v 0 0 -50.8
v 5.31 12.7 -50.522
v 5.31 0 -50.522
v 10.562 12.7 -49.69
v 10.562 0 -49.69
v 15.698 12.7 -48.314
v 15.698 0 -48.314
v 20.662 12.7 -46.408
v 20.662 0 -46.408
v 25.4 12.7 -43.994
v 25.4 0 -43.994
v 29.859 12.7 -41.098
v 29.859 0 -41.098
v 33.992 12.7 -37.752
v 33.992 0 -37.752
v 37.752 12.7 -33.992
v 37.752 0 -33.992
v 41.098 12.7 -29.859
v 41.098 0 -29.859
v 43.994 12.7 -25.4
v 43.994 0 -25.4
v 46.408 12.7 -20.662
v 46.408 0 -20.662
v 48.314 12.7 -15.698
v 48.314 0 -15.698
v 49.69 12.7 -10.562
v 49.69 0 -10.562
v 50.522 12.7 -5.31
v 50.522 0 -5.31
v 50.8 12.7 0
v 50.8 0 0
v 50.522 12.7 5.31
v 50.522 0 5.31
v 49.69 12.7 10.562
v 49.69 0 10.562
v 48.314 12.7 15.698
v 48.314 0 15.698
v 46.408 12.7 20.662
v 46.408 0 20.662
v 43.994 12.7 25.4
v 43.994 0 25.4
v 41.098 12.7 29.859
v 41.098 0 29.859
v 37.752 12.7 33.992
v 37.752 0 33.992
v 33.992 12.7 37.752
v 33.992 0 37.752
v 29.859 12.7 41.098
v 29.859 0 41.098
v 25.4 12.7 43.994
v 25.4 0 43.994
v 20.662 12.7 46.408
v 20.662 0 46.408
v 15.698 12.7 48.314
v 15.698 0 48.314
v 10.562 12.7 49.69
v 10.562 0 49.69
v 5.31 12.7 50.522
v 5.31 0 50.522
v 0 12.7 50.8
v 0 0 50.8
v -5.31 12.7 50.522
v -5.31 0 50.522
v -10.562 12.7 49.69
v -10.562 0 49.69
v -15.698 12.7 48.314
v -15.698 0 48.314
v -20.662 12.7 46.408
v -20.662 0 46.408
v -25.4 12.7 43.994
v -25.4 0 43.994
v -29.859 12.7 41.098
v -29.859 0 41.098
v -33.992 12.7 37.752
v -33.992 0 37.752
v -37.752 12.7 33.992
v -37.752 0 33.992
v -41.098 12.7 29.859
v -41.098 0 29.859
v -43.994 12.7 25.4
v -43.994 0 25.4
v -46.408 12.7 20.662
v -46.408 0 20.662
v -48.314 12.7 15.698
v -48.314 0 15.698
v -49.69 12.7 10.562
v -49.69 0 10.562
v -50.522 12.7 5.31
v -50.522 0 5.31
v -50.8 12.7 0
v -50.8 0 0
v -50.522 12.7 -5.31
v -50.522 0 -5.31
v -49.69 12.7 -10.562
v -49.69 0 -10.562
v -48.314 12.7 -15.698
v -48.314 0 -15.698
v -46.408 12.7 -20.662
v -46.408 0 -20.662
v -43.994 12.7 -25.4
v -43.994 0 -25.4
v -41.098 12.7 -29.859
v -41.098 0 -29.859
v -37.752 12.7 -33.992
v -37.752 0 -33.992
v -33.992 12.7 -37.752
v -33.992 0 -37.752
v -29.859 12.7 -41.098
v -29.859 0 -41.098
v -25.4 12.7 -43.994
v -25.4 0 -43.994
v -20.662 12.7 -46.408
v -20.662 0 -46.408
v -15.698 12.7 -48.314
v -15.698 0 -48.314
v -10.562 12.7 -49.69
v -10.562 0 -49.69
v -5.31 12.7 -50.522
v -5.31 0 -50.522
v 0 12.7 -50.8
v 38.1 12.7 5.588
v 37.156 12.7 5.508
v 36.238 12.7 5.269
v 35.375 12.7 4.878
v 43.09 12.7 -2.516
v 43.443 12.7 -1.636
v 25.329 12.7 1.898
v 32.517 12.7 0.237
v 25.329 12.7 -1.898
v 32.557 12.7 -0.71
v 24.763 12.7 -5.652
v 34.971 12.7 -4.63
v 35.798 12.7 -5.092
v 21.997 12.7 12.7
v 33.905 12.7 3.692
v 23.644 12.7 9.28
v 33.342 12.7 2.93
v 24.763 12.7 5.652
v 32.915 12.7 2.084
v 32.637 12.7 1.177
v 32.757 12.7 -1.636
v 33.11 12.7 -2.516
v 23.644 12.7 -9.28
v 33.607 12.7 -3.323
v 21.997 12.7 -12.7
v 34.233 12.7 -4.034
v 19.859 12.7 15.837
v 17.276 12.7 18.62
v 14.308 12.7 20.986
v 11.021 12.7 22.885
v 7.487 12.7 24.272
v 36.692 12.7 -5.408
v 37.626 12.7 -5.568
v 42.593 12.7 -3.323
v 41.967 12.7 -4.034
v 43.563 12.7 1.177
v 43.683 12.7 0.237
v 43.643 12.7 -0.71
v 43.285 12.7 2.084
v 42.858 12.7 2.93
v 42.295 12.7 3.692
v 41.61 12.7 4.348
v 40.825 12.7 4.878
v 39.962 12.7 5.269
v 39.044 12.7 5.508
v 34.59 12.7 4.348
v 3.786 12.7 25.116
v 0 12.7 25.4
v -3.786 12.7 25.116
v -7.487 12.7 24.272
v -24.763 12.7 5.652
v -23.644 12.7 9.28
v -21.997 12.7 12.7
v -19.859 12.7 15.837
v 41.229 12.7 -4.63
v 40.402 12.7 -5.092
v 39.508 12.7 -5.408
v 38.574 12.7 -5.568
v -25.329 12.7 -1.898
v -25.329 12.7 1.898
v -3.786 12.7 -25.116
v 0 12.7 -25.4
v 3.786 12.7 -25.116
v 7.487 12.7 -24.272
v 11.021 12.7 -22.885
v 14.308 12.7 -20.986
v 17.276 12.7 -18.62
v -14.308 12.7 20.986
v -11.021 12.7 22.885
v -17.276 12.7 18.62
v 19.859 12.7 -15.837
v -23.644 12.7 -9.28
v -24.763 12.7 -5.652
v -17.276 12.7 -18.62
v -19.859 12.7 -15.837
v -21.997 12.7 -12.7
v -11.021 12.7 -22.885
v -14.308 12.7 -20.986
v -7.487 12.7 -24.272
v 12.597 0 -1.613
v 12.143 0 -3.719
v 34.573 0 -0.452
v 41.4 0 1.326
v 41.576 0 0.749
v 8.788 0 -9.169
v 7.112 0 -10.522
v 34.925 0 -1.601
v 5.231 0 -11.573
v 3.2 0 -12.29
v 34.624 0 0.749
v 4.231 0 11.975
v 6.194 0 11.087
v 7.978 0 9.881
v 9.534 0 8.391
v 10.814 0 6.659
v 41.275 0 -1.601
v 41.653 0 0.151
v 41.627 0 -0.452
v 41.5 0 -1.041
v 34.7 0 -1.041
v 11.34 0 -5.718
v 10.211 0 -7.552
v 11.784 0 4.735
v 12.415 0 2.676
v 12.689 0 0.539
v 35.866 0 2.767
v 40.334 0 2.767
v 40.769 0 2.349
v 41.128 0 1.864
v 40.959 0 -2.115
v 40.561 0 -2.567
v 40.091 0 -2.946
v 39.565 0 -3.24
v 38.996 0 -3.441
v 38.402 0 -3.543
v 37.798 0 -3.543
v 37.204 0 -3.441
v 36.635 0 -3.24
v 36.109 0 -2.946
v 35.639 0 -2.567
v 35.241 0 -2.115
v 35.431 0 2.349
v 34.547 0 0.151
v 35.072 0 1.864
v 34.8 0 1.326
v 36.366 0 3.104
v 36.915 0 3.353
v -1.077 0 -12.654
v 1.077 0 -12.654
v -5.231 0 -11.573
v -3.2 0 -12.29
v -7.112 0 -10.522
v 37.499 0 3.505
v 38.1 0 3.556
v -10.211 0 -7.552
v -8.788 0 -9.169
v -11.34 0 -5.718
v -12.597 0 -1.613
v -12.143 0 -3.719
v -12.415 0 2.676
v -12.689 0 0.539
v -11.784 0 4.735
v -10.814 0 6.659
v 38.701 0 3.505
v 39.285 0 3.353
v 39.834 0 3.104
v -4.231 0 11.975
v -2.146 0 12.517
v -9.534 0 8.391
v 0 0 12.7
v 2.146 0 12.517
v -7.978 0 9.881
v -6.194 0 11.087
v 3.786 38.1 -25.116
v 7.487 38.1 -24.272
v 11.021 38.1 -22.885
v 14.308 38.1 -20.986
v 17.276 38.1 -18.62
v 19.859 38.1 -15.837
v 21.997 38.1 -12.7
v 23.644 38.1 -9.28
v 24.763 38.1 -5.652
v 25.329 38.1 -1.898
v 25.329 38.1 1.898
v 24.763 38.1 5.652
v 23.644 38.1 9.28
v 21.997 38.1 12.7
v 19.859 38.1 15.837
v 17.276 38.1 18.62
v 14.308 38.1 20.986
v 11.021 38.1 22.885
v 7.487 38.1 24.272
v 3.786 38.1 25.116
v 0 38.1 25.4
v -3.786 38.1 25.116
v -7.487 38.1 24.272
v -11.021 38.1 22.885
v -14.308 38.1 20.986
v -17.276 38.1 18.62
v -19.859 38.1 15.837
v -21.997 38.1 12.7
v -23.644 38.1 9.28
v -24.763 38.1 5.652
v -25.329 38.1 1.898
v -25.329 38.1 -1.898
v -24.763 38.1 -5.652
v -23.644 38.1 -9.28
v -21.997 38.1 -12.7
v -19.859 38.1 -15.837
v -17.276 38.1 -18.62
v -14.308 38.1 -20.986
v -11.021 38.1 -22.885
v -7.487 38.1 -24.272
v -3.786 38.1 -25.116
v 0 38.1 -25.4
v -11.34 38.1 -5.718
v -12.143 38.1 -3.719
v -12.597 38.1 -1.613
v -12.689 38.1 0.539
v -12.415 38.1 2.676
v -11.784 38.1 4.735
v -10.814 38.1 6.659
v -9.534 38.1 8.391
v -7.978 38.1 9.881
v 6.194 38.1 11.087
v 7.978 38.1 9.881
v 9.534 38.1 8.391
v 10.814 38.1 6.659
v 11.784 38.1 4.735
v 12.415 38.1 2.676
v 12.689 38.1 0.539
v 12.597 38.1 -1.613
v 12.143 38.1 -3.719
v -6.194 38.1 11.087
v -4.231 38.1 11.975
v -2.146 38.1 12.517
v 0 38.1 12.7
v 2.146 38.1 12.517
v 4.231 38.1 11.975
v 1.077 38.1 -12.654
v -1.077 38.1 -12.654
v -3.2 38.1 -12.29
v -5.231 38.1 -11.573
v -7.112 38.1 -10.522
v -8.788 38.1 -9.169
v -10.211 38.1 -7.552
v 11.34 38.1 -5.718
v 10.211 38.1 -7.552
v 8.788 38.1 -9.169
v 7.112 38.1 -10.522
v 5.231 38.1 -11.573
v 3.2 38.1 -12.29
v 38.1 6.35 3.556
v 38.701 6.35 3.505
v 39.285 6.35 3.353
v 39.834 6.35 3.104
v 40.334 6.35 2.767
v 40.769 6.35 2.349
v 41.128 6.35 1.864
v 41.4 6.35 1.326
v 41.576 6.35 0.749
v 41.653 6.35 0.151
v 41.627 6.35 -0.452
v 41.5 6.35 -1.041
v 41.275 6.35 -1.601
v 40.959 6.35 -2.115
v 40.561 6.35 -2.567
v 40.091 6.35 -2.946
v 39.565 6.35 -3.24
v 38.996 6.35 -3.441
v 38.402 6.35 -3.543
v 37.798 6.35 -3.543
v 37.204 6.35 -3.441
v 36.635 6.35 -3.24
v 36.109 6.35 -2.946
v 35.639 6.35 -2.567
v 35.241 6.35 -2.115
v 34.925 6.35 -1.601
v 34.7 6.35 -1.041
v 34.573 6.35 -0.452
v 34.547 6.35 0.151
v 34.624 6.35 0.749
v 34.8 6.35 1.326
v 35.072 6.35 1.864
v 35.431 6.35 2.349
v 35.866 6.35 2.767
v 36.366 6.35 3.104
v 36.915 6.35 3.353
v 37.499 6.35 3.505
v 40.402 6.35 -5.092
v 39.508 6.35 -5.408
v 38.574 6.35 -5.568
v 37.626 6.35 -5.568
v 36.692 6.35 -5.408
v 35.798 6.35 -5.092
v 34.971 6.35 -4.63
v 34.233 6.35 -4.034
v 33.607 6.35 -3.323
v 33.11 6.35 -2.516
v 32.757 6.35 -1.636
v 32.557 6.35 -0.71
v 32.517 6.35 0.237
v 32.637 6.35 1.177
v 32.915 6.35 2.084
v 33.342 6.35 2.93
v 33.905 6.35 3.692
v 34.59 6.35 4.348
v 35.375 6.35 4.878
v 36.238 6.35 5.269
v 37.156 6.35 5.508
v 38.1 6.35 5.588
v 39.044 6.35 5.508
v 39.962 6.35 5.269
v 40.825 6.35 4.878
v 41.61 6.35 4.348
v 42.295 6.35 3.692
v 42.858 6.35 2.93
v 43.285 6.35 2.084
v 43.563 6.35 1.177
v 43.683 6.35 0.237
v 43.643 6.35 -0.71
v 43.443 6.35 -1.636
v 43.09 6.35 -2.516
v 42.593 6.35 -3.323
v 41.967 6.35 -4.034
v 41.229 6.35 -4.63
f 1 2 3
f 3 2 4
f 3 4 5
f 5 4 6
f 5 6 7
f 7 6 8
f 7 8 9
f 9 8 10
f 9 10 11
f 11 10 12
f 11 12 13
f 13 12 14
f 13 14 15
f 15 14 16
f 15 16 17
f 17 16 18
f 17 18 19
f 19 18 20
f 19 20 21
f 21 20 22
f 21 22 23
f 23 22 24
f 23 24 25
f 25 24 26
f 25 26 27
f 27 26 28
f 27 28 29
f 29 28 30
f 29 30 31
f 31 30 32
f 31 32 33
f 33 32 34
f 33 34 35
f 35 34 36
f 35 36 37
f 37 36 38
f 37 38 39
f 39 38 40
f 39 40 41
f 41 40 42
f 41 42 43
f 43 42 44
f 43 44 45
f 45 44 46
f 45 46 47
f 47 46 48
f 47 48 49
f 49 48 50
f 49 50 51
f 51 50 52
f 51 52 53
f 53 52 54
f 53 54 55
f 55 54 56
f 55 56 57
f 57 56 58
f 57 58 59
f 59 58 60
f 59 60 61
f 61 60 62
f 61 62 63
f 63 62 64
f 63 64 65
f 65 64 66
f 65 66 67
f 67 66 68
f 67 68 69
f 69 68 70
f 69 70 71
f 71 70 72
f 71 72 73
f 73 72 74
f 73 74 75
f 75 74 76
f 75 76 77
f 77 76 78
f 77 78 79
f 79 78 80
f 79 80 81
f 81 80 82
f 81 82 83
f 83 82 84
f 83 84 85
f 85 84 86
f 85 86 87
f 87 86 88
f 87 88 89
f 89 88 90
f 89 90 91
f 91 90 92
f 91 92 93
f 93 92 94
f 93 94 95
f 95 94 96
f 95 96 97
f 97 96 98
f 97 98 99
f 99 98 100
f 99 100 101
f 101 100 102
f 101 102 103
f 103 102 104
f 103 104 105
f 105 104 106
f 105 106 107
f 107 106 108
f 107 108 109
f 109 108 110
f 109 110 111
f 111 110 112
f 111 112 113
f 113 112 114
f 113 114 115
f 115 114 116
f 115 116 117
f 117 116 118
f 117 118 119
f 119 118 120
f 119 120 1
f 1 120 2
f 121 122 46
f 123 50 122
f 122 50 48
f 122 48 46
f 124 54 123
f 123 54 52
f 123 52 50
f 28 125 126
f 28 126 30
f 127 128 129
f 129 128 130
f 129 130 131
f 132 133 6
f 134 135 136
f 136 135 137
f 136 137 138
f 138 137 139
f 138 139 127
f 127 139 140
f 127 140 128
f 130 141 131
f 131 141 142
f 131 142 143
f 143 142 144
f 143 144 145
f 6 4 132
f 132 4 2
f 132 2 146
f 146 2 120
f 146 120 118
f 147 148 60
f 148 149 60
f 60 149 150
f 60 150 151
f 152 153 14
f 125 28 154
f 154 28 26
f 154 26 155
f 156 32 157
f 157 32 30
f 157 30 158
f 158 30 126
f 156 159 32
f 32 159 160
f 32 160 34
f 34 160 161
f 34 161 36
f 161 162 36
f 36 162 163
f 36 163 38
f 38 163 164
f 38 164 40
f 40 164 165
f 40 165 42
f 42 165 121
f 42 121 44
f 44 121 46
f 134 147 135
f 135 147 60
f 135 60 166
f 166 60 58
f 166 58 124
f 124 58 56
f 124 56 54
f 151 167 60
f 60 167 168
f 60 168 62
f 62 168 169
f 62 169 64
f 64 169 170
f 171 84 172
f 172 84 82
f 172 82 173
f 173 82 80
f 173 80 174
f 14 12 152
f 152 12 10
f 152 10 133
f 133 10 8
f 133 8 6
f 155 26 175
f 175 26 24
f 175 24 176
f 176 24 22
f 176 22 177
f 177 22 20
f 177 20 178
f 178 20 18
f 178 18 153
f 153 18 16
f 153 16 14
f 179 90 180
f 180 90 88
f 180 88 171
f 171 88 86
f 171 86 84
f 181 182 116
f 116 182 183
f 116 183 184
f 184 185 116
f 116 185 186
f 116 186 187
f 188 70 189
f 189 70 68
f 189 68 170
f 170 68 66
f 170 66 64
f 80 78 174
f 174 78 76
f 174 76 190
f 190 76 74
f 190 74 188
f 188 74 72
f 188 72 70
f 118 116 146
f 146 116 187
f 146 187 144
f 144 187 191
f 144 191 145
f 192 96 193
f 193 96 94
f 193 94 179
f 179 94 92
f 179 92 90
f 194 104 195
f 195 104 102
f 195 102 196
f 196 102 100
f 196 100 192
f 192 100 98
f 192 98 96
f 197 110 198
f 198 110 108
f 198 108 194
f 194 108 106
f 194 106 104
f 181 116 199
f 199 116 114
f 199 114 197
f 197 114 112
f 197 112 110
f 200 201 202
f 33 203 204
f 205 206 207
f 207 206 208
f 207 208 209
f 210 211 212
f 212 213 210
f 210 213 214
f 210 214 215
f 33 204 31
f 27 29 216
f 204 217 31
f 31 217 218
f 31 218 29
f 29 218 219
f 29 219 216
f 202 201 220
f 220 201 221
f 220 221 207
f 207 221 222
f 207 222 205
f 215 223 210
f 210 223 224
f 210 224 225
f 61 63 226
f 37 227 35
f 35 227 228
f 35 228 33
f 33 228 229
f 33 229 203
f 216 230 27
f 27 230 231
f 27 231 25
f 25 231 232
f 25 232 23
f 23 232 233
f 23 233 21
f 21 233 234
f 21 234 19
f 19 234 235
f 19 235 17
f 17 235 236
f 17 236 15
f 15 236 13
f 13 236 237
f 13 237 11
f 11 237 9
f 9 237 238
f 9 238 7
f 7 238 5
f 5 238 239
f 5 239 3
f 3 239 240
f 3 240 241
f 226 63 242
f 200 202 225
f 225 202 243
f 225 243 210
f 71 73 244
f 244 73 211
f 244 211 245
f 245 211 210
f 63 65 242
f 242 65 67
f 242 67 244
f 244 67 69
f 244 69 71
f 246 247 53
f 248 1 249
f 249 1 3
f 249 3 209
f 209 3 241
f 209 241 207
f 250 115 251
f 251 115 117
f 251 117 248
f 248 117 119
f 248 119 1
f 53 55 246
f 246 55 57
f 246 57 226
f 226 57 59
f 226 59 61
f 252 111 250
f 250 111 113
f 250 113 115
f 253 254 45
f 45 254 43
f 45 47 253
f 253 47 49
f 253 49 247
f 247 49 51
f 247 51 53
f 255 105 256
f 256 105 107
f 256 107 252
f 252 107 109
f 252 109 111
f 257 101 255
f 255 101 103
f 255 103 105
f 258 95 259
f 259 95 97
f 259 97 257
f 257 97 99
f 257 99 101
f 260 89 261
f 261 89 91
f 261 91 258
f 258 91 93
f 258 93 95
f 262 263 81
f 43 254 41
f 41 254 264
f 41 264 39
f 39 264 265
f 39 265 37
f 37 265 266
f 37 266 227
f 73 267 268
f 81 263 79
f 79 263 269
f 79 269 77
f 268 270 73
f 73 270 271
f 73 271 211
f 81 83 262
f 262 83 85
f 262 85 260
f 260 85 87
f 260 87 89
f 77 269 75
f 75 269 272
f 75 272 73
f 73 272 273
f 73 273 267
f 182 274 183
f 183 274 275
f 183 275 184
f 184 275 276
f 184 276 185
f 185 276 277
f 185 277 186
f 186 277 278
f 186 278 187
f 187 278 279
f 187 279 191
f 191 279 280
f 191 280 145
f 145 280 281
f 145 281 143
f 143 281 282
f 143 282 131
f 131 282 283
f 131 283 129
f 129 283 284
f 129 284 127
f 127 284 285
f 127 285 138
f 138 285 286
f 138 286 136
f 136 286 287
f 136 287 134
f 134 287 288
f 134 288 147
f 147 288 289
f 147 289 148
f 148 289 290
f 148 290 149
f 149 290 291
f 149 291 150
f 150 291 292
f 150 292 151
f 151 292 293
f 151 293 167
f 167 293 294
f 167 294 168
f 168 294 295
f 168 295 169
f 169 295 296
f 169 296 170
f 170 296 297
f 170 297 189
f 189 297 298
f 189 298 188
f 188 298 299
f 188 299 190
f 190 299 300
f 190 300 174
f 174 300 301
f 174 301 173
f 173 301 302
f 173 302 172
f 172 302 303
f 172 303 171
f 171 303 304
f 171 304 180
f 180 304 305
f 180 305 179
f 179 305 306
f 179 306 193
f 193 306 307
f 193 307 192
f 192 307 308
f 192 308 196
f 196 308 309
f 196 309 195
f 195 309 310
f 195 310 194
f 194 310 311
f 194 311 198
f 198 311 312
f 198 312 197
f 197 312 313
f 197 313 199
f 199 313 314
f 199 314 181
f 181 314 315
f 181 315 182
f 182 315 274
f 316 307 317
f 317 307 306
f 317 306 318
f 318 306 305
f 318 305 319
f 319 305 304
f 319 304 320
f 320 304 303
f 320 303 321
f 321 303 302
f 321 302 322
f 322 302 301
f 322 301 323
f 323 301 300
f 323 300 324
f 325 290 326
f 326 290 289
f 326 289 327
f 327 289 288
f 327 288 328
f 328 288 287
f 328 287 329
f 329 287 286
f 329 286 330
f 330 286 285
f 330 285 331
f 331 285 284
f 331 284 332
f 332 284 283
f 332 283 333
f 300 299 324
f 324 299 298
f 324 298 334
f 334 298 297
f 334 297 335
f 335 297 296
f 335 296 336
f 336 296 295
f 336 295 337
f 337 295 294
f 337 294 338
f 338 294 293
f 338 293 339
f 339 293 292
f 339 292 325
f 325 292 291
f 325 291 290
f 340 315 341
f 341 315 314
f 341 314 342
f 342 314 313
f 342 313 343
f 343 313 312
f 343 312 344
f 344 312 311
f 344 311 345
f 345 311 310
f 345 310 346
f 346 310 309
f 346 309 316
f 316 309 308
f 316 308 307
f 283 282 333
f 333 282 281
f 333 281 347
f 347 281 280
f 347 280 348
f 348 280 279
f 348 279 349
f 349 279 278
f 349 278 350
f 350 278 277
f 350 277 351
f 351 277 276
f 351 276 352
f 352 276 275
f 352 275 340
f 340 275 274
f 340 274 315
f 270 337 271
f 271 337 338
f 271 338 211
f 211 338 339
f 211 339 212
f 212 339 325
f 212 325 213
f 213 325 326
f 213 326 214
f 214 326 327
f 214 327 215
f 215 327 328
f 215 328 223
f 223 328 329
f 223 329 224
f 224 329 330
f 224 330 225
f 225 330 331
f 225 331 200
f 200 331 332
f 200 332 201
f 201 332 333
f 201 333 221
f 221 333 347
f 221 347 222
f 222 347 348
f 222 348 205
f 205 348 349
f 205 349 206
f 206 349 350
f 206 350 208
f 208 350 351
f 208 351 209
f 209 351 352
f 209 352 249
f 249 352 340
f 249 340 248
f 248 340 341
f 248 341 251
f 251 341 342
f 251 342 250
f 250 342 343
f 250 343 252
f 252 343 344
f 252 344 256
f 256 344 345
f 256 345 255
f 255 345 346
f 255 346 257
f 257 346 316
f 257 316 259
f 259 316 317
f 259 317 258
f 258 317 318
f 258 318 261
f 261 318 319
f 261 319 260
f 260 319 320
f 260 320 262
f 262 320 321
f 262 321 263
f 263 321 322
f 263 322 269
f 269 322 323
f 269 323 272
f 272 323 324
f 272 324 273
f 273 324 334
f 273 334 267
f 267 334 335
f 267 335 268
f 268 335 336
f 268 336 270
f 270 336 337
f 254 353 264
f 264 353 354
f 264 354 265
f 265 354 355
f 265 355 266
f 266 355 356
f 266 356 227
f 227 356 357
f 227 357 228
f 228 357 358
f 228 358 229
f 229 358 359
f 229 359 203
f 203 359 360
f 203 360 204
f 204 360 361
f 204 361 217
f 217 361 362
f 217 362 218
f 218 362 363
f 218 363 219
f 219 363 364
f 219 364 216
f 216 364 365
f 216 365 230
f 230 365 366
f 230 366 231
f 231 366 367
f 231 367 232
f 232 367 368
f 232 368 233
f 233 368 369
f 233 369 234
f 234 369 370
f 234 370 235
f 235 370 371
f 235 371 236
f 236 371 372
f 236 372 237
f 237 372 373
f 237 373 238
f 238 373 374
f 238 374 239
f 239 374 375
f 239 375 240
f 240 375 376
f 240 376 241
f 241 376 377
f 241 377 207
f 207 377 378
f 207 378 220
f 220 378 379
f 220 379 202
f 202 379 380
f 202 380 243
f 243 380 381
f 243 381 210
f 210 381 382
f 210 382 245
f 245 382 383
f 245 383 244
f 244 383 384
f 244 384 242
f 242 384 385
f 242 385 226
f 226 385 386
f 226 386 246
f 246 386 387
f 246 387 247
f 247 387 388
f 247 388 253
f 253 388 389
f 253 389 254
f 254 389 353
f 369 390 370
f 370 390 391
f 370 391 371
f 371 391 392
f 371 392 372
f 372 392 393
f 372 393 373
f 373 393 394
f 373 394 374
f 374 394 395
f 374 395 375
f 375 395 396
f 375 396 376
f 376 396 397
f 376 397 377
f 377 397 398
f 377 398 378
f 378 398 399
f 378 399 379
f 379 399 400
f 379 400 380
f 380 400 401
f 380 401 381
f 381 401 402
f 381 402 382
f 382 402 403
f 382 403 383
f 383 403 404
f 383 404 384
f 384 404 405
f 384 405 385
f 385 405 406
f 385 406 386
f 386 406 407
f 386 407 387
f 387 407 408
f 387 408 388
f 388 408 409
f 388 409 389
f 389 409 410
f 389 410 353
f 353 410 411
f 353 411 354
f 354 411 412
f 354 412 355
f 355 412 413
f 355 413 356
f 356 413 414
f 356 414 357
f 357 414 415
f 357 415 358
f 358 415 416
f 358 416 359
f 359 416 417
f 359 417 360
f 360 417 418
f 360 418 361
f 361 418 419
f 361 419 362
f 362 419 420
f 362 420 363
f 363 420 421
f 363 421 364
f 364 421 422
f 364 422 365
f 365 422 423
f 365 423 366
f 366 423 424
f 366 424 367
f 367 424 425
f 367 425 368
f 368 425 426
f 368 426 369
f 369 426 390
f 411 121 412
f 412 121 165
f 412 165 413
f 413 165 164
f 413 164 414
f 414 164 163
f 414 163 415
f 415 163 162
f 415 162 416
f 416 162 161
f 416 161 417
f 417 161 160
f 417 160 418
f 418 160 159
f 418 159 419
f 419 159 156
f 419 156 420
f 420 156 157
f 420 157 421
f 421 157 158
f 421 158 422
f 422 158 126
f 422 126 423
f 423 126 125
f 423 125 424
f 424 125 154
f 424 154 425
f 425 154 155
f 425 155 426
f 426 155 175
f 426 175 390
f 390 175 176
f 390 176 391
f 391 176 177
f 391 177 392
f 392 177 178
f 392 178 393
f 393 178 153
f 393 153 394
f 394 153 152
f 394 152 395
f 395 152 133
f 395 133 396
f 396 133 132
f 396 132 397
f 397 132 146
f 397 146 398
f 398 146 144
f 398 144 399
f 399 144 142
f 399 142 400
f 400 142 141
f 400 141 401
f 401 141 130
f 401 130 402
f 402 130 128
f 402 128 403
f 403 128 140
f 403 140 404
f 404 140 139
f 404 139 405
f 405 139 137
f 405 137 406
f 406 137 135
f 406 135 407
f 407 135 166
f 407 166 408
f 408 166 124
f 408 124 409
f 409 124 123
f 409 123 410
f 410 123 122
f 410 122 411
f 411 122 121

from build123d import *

# Parameters (mm, degrees)
SKETCH2_R                                        = 50.8
FLANGE_DEPTH                                     = 12.7
SKETCH3_R                                        = 25.4
HUB_DEPTH                                        = 25.4
SKETCH4_R                                        = 12.7
BORE_DEPTH                                       = 82.319677815
CBORE_FOR_1_4_SOCKET_HEAD_CAP_SCREW2_D           = 7.112
CBORE_FOR_1_4_SOCKET_HEAD_CAP_SCREW2_CBORE_D     = 11.176
CBORE_FOR_1_4_SOCKET_HEAD_CAP_SCREW2_CBORE_DEPTH = 6.35


with BuildPart() as part:
    # Sketch2 → Flange (new body)
    with BuildSketch(Plane(origin=(0, 0, 0), x_dir=(1, 0, 0), z_dir=(0, 1, 0))):
        with Locations(Location((0, 0, 0), (0, 0, 270))):
            Circle(SKETCH2_R)
    extrude(amount=FLANGE_DEPTH)

    # Sketch3 → Hub (add)
    with BuildSketch(Plane(origin=(0, 12.7, 0), x_dir=(1, 0, 0), z_dir=(0, 1, 0))):
        with Locations(Location((0, 0, 0), (0, 0, 270))):
            Circle(SKETCH3_R)
    extrude(amount=HUB_DEPTH)

    # Sketch4 → Bore (cut, through all)
    with BuildSketch(Plane(origin=(0, 38.1, 0), x_dir=(1, 0, 0), z_dir=(0, 1, 0))):
        with Locations(Location((0, 0, 0), (0, 0, 270))):
            Circle(SKETCH4_R)
    extrude(amount=-BORE_DEPTH, mode=Mode.SUBTRACT)

    # CBORE for 1/4 Socket Head Cap Screw2 (through all)
    with Locations(Plane(origin=(0, 12.7, 0), x_dir=(1, 0, 0), z_dir=(0, 1, 0))):
        with Locations((38.1, 0)):
            CounterBoreHole(CBORE_FOR_1_4_SOCKET_HEAD_CAP_SCREW2_D / 2, CBORE_FOR_1_4_SOCKET_HEAD_CAP_SCREW2_CBORE_D / 2, CBORE_FOR_1_4_SOCKET_HEAD_CAP_SCREW2_CBORE_DEPTH)


solid = part.part
